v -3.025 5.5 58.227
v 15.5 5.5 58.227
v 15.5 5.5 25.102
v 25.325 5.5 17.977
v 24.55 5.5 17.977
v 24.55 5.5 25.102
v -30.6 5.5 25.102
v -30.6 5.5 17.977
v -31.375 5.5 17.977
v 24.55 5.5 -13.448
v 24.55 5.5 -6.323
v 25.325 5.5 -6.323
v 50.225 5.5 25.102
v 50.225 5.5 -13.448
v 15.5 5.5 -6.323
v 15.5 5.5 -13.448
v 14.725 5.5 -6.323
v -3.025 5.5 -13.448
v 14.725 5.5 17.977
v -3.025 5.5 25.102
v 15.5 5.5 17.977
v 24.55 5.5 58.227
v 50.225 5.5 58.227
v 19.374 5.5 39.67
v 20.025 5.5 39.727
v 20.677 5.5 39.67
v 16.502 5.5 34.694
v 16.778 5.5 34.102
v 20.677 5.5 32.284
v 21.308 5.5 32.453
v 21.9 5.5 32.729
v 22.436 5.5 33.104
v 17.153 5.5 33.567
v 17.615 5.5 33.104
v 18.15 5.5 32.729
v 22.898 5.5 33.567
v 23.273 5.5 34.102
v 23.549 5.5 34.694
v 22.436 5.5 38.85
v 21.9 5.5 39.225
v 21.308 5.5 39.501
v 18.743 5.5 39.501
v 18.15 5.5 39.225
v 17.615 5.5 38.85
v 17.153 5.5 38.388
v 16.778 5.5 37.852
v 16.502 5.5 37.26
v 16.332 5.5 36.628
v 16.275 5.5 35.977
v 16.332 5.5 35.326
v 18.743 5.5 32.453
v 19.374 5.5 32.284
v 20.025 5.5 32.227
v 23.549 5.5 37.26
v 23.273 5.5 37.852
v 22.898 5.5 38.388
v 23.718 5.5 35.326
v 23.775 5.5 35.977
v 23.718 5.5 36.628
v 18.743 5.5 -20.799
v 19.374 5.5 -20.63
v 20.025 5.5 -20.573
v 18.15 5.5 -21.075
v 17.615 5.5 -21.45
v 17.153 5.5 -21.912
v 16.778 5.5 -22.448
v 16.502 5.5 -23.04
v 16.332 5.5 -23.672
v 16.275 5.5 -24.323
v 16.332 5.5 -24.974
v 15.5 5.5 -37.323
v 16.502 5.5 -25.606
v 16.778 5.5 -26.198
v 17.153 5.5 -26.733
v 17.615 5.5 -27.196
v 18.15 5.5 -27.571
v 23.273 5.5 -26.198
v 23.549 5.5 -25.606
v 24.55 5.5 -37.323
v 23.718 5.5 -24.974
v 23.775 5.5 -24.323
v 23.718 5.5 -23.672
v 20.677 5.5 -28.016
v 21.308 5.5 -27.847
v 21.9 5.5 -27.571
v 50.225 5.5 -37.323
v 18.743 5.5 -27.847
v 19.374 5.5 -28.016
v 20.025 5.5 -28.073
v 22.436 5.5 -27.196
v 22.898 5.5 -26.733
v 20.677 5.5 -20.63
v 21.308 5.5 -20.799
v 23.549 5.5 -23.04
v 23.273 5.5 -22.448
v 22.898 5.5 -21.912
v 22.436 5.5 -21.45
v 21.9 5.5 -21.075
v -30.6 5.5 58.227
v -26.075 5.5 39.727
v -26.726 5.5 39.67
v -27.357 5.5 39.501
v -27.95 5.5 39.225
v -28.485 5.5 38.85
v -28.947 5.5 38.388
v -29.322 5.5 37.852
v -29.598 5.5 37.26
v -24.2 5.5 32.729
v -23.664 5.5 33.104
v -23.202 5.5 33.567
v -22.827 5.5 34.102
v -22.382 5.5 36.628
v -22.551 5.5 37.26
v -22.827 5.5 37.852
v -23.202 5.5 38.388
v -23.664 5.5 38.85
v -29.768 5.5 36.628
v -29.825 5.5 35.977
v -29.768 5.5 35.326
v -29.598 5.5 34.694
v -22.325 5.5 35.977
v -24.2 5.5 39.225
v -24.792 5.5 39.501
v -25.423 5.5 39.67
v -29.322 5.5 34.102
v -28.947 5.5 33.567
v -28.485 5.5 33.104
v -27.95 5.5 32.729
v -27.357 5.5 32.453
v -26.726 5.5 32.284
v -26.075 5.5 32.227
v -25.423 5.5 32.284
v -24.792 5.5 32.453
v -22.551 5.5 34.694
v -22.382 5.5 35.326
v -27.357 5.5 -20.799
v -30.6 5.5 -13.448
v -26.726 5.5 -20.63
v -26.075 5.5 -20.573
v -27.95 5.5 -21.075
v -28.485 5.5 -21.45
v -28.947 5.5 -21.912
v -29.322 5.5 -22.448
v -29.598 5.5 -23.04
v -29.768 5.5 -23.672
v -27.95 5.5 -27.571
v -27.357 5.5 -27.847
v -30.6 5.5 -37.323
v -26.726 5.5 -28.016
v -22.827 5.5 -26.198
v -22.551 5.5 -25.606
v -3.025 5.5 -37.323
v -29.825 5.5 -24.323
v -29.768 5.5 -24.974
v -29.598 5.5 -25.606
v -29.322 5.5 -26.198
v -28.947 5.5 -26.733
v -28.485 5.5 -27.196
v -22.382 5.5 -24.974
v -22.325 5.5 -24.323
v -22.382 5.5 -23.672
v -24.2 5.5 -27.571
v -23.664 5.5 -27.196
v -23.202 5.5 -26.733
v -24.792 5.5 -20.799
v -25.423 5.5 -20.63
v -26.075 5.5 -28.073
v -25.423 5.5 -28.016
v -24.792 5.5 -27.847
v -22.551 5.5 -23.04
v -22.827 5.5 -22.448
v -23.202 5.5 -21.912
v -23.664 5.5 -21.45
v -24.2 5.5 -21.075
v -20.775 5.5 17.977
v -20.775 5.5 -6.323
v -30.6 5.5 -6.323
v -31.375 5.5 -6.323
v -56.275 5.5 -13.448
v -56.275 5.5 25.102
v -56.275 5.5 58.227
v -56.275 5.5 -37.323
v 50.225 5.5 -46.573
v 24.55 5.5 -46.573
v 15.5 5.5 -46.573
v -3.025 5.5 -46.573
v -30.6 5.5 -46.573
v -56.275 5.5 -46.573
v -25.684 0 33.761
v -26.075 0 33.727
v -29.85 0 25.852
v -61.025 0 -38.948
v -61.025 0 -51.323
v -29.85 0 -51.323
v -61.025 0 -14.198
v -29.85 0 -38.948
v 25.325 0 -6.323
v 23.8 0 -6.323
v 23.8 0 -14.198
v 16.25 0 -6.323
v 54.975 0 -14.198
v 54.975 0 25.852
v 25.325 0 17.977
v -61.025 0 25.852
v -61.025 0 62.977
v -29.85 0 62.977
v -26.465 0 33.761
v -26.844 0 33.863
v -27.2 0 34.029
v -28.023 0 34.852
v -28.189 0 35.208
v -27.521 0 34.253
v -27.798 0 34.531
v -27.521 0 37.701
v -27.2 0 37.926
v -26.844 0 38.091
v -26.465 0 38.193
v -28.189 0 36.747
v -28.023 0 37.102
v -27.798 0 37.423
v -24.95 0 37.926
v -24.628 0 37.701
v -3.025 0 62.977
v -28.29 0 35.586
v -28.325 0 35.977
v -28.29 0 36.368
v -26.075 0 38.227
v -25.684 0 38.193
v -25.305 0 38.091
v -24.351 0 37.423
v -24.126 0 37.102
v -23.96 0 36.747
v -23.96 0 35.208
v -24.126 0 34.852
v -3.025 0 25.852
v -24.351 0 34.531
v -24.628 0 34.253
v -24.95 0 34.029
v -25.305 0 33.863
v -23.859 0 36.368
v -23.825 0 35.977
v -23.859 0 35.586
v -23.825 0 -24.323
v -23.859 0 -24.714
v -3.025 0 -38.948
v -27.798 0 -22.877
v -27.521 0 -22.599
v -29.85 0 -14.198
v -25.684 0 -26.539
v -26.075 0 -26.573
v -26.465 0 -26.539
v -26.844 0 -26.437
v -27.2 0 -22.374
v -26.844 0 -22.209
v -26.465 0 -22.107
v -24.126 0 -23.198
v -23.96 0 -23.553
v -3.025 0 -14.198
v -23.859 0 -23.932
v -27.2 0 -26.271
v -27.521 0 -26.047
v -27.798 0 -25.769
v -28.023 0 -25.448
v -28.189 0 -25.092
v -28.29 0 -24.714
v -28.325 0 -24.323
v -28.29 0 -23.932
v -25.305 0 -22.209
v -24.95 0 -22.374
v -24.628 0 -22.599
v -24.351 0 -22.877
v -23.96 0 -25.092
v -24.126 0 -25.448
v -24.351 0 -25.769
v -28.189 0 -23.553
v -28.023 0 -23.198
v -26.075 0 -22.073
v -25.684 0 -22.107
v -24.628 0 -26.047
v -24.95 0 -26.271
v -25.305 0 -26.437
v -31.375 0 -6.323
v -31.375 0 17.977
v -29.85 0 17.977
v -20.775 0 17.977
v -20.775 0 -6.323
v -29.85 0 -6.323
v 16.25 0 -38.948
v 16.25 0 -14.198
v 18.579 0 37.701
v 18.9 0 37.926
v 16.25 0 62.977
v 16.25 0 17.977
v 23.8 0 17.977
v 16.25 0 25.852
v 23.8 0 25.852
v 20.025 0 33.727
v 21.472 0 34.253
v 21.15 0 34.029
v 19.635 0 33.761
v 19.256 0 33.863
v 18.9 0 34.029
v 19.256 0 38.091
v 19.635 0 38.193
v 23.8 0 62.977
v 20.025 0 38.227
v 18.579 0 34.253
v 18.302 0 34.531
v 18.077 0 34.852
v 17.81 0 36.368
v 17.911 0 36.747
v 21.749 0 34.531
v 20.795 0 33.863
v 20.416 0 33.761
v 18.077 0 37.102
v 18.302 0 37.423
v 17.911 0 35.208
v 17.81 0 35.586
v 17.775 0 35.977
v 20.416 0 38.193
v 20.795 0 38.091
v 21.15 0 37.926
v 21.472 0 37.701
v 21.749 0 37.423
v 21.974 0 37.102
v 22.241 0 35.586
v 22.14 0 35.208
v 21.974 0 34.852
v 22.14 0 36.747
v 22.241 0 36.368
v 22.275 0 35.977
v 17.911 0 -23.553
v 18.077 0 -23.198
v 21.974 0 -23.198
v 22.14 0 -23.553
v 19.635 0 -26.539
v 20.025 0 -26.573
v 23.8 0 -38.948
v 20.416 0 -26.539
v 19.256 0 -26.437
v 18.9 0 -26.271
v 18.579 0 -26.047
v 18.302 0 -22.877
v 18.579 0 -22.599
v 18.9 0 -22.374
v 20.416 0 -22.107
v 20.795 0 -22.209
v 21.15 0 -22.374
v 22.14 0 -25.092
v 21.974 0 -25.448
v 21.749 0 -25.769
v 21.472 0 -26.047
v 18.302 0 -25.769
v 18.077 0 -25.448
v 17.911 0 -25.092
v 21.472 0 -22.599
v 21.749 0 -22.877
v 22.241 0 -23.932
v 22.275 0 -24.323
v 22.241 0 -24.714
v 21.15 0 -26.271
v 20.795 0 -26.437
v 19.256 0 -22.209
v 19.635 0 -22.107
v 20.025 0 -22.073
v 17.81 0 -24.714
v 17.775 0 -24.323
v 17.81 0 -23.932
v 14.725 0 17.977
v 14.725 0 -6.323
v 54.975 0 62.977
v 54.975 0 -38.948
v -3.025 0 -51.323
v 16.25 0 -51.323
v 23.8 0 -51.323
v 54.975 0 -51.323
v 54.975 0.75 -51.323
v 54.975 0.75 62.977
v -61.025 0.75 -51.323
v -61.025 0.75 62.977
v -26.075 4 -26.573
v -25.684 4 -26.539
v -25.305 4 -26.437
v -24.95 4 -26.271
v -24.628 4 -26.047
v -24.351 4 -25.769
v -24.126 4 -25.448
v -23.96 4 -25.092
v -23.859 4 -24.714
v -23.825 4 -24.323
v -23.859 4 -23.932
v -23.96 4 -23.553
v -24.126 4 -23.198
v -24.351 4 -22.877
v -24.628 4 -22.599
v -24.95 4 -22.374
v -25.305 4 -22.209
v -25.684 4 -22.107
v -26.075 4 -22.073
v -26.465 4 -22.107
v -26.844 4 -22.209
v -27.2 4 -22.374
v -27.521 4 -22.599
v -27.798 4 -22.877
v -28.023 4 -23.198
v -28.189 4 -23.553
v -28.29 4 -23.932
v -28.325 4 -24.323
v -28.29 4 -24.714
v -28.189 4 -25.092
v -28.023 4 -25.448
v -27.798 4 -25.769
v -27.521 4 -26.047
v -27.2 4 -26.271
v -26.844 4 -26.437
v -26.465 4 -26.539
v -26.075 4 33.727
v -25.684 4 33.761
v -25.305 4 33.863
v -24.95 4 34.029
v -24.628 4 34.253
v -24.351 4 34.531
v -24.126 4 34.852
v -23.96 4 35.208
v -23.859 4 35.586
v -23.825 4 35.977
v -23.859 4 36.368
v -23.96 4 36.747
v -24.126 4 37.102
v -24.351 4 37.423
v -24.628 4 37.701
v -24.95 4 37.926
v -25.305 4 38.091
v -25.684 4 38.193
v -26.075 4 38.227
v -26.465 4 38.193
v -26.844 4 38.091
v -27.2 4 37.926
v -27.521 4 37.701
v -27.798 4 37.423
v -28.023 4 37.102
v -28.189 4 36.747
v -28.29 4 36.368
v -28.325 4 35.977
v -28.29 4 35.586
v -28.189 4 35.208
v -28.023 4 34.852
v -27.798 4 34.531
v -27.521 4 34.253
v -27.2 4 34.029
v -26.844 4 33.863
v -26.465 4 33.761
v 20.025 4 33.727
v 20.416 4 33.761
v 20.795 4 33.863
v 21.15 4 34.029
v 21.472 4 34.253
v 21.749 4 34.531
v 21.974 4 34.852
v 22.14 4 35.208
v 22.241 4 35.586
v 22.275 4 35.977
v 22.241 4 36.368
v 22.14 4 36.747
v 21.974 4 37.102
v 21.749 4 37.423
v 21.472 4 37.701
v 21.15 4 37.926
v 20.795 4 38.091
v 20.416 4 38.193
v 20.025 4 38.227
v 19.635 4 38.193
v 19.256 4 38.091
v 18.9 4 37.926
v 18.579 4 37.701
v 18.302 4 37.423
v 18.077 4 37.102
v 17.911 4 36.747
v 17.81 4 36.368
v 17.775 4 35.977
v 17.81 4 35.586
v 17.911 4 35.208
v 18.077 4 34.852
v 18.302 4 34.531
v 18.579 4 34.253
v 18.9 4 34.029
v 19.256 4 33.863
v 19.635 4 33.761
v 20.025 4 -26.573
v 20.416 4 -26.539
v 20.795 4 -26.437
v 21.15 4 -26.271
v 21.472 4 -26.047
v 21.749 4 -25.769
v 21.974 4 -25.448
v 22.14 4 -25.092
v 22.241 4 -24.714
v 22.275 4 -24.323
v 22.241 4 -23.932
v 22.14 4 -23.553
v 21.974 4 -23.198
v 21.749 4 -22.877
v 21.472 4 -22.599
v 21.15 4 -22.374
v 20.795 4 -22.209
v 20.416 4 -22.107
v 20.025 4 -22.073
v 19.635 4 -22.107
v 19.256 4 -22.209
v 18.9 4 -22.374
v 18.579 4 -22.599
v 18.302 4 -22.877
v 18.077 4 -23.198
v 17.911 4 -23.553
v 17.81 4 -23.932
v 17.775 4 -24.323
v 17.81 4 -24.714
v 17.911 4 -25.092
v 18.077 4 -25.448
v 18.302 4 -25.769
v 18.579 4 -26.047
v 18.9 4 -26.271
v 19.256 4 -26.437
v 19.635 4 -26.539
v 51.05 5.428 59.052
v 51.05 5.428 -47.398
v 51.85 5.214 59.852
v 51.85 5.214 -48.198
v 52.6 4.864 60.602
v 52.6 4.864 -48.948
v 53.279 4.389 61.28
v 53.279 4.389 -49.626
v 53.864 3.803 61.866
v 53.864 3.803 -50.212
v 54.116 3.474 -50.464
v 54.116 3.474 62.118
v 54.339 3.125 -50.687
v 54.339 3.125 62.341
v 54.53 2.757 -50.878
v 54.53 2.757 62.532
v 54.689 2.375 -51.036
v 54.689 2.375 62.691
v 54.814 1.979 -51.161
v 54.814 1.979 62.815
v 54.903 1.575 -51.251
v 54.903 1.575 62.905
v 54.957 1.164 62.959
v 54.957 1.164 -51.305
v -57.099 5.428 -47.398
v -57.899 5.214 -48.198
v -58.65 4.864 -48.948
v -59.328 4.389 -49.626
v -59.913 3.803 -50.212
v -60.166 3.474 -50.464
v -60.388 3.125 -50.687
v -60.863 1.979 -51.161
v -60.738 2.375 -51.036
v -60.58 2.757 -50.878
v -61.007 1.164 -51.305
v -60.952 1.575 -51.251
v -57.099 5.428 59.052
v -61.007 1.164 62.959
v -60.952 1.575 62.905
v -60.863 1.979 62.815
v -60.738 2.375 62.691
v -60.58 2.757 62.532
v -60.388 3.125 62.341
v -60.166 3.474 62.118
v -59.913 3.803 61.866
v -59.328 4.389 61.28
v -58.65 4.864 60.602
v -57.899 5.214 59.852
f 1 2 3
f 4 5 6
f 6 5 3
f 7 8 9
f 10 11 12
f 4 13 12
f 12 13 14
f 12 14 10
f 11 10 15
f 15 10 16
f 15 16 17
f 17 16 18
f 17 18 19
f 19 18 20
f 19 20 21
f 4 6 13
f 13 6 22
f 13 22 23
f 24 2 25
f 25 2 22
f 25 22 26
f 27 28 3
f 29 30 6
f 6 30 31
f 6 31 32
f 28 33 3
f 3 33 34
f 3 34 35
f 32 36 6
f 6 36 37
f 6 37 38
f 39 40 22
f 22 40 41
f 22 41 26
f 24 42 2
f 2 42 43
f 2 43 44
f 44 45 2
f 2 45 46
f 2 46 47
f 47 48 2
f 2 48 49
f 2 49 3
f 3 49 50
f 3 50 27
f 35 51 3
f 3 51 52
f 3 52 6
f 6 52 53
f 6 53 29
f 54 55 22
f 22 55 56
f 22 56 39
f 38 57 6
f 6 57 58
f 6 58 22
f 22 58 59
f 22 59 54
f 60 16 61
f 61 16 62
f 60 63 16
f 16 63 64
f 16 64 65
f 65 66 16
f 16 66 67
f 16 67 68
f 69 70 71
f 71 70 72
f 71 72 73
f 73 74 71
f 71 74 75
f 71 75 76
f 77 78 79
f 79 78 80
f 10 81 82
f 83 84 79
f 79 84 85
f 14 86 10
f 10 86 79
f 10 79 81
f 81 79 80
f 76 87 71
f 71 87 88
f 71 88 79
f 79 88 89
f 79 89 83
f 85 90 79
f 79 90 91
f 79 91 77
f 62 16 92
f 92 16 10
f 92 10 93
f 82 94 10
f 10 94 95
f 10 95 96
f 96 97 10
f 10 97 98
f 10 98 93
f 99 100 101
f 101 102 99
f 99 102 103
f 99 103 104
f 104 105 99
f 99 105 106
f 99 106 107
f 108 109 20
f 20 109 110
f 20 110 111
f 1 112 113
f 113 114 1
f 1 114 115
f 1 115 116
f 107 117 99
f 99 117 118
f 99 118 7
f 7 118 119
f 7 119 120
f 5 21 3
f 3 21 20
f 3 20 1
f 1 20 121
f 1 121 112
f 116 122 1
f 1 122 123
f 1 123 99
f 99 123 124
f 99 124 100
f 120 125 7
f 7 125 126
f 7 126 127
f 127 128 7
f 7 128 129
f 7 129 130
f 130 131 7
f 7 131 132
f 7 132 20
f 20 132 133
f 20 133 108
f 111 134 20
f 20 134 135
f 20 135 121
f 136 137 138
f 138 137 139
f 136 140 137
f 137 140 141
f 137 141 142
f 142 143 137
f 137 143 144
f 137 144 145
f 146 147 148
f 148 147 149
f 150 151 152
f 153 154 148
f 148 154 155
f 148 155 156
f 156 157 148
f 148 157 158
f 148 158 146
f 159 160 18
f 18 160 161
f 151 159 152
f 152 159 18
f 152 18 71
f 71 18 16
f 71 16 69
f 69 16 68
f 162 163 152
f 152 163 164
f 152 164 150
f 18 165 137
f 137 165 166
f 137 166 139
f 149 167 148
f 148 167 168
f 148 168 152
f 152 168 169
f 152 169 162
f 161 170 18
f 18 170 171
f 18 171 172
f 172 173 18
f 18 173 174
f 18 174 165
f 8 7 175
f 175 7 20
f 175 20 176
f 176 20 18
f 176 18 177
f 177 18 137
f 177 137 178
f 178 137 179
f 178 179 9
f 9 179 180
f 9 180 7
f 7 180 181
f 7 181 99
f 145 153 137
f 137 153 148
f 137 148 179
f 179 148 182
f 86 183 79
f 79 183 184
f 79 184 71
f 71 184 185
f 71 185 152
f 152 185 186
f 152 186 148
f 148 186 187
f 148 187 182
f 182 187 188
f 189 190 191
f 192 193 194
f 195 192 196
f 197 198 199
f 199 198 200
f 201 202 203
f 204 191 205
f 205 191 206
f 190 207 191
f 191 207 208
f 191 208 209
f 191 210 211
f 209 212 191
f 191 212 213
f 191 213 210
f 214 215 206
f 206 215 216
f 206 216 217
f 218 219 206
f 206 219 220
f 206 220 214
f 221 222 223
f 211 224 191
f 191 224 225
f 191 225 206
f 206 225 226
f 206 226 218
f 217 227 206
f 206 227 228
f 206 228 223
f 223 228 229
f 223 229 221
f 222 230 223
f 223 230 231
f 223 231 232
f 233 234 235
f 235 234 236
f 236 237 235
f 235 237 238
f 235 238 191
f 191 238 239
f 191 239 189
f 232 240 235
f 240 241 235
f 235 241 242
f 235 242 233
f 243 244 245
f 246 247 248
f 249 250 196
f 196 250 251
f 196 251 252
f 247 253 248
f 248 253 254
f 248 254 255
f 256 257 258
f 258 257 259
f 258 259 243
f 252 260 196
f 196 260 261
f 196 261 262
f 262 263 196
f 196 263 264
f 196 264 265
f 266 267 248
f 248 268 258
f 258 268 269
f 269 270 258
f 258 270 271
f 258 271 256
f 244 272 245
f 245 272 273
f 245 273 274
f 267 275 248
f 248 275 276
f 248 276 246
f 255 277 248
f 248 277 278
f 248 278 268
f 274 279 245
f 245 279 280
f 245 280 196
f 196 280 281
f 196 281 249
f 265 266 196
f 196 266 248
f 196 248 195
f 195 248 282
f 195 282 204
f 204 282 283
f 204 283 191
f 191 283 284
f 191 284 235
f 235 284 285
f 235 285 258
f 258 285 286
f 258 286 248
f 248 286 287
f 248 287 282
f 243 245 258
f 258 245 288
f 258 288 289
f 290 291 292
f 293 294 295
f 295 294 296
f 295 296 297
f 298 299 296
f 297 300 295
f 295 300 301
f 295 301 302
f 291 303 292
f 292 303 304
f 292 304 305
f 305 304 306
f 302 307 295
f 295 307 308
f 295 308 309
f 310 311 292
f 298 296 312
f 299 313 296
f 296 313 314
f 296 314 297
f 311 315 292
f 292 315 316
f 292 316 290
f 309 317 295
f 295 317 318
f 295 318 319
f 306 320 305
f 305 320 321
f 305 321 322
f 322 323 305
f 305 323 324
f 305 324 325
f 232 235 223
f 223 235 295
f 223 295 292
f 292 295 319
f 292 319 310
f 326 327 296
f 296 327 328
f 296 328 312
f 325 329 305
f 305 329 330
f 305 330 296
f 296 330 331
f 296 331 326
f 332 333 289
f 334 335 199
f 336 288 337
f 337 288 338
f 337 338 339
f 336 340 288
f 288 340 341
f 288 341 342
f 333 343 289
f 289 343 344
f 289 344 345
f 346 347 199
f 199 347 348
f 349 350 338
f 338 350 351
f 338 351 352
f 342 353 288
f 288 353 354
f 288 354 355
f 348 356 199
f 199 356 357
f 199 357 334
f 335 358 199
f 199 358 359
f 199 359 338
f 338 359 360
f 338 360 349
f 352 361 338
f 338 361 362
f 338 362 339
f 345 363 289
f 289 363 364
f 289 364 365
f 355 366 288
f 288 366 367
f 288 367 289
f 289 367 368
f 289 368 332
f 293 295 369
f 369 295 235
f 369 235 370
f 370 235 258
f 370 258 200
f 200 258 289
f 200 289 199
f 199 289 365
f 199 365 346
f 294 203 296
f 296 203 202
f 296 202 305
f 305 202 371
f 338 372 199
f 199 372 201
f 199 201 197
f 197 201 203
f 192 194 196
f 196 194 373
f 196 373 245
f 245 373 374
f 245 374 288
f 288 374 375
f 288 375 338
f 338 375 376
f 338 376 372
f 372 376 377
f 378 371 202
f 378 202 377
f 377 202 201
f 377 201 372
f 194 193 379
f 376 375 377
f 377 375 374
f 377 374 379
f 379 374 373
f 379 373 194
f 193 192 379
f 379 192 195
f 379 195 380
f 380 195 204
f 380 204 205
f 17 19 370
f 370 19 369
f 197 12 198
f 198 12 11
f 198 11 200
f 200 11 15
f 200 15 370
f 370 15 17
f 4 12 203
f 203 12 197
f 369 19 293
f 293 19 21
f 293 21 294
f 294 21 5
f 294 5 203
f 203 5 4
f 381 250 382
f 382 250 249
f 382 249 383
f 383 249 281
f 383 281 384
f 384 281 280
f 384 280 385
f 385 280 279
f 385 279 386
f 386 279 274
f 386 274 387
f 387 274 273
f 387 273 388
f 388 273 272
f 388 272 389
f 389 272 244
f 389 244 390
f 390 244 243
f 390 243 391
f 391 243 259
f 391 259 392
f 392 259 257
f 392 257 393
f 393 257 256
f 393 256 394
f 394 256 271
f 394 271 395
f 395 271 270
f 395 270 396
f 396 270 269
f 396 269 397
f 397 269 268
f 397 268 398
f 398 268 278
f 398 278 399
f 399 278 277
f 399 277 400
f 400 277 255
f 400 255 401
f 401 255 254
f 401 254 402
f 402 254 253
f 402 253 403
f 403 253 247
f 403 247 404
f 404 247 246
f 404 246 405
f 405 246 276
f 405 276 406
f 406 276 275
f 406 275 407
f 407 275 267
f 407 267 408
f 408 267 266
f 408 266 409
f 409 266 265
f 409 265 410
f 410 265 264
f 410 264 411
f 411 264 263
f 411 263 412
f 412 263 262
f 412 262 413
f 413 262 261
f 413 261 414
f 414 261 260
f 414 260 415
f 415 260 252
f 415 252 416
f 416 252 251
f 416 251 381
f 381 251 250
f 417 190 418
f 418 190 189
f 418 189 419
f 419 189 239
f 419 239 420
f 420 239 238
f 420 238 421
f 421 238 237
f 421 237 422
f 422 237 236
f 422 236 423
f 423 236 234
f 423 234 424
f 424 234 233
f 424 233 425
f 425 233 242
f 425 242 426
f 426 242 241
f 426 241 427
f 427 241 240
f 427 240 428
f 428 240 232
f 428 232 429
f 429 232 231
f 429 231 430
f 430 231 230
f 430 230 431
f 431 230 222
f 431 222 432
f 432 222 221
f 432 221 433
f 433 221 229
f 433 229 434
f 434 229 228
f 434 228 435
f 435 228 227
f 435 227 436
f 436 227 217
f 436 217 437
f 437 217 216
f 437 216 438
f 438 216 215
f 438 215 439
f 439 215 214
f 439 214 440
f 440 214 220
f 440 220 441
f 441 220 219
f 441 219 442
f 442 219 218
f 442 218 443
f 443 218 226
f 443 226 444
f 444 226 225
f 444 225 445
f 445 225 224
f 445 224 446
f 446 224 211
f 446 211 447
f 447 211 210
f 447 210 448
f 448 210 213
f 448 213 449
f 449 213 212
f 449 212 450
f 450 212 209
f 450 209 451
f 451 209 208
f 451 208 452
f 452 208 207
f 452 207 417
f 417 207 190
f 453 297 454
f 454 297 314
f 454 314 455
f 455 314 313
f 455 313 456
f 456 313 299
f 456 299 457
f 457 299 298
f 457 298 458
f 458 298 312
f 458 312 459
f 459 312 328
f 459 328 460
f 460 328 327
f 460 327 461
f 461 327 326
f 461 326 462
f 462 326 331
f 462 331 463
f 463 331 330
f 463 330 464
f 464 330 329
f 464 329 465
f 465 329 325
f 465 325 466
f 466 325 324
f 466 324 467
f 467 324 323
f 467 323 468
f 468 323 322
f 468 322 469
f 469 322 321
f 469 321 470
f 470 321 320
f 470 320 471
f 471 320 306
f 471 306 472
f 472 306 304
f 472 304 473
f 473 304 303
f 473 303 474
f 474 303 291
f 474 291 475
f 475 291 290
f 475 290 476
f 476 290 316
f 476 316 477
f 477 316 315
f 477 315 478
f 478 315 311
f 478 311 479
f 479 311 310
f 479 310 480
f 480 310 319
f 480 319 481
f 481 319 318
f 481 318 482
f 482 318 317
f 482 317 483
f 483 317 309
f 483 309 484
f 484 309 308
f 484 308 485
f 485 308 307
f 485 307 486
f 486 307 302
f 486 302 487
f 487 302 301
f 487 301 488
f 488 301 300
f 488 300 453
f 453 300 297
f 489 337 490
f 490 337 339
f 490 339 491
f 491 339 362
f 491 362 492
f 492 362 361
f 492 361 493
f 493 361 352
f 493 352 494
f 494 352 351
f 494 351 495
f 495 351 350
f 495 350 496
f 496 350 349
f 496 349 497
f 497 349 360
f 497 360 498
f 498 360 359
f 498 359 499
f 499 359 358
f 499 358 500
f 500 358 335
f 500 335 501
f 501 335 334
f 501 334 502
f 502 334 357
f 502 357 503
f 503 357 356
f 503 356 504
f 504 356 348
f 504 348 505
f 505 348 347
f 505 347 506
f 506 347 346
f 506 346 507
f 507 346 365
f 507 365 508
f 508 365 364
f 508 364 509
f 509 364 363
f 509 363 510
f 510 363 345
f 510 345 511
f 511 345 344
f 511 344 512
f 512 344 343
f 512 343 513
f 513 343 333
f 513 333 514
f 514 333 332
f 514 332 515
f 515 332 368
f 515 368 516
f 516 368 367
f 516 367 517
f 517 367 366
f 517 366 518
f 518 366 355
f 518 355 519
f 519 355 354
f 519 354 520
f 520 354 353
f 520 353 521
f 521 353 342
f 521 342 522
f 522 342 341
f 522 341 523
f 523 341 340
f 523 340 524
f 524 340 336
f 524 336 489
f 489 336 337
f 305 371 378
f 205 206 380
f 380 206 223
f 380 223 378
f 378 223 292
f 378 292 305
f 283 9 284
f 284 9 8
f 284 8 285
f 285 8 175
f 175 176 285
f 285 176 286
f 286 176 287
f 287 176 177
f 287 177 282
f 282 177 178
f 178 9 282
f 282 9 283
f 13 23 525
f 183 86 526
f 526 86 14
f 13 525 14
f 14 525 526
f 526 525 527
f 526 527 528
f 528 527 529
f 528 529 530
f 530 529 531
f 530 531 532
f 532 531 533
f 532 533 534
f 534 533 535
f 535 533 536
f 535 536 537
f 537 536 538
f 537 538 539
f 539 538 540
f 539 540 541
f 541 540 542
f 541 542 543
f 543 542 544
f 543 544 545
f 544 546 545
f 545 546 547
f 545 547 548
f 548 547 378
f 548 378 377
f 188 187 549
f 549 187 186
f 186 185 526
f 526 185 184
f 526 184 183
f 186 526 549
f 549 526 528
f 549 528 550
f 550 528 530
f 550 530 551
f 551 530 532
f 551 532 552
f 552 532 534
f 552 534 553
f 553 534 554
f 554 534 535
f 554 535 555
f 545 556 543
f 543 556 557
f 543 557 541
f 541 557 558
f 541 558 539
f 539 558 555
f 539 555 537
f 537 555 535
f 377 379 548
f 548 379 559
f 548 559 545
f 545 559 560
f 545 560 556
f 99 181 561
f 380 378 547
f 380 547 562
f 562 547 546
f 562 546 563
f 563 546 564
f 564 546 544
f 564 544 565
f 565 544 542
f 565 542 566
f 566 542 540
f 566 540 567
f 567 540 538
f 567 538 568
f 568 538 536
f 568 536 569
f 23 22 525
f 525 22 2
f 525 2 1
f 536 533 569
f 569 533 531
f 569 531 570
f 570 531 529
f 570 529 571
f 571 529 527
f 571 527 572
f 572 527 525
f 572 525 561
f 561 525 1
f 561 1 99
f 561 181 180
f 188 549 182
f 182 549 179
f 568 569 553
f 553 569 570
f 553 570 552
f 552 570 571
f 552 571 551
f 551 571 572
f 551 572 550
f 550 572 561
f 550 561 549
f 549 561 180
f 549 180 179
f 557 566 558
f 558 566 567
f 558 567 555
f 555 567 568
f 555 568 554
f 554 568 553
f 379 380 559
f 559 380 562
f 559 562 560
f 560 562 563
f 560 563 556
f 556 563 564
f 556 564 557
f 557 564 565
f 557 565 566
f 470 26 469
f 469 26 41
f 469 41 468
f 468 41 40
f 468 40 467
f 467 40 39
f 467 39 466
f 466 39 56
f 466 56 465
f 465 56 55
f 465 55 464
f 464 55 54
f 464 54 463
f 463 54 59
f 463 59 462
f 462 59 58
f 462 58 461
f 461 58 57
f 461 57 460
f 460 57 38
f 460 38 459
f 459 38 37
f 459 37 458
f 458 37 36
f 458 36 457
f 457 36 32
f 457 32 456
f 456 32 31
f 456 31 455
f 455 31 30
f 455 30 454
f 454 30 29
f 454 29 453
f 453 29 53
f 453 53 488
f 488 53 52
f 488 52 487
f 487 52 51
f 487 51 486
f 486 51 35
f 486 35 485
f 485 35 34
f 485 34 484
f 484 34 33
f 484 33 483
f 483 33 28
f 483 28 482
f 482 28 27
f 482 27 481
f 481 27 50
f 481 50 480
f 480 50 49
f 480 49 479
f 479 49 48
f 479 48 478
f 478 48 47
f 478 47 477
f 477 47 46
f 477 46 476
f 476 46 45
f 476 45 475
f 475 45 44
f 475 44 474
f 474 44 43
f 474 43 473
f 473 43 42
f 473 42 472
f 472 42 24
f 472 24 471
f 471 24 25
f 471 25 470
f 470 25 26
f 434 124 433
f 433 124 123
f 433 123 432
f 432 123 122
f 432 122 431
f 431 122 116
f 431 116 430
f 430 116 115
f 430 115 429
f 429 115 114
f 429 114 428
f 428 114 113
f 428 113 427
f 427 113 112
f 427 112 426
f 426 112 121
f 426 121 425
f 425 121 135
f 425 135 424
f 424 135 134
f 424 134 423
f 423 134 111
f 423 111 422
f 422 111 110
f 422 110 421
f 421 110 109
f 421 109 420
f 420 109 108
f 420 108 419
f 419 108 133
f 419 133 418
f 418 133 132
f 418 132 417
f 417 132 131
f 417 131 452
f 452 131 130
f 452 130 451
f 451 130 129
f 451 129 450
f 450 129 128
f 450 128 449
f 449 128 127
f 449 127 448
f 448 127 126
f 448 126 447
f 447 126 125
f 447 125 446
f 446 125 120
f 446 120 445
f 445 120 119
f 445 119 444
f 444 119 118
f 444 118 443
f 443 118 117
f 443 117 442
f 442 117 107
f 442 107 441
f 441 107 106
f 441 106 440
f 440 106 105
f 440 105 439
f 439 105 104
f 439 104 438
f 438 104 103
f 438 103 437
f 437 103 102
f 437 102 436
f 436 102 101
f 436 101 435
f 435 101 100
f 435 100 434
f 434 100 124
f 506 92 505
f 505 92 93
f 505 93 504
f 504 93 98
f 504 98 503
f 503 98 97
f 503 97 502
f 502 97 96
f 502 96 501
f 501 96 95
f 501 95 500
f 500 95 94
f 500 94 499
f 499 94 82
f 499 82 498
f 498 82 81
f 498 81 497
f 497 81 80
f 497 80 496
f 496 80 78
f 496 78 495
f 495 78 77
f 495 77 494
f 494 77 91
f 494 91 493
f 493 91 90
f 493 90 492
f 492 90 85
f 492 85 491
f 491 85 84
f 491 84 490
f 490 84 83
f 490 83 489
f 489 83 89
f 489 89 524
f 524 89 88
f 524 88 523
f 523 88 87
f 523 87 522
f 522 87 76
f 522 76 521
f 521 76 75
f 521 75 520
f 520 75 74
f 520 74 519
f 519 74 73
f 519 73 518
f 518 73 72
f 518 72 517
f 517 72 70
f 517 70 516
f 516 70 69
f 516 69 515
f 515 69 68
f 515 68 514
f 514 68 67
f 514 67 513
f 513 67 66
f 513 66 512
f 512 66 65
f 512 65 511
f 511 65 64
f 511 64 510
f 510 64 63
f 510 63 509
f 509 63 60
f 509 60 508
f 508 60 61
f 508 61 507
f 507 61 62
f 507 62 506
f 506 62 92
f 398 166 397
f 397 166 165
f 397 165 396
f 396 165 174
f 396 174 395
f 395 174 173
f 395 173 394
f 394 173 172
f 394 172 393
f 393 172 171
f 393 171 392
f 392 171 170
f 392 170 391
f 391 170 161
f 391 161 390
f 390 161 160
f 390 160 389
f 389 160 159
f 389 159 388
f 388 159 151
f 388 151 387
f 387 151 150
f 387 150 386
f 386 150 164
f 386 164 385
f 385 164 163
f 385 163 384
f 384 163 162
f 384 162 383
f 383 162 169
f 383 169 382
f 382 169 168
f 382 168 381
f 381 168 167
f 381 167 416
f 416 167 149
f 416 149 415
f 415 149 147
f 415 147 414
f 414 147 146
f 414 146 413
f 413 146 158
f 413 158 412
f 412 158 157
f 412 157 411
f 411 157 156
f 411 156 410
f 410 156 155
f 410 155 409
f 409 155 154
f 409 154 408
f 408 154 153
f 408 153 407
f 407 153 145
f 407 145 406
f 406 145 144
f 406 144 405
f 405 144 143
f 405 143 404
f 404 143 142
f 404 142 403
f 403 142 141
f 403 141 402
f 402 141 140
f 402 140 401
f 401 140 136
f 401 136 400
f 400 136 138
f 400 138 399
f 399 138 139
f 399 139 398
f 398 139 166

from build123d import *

# Parameters (mm, degrees)
SKETCH1_W           = 116
SKETCH1_H           = 114.3
SKETCH1_R           = 2.25
SKETCH1_W_2         = 10.6
SKETCH1_H_2         = 24.3
BOSS_EXTRUDE1_DEPTH = 5.5
FILLET1_R           = 4.75
CHAMFER1_SIZE       = 1.5


with BuildPart() as part:
    # Sketch1 → Boss-Extrude1 (new body)
    with BuildSketch(Plane(origin=(0, 0, 0), x_dir=(1, 0, 0), z_dir=(0, 1, 0))):
        with Locations((-3.024594732, -5.827064496)):
            Rectangle(SKETCH1_W, SKETCH1_H)
        with Locations((-26.074594732, 24.322935504)):
            Circle(SKETCH1_R, mode=Mode.SUBTRACT)
        with Locations((-26.074594732, -35.977064496)):
            Circle(SKETCH1_R, mode=Mode.SUBTRACT)
        with Locations((20.025405268, -35.977064496)):
            Circle(SKETCH1_R, mode=Mode.SUBTRACT)
        with Locations((20.025405268, 24.322935504)):
            Circle(SKETCH1_R, mode=Mode.SUBTRACT)
        with Locations((-26.074594732, -5.827064496)):
            Rectangle(SKETCH1_W_2, SKETCH1_H_2, mode=Mode.SUBTRACT)
        with Locations((20.025405268, -5.827064496)):
            Rectangle(SKETCH1_W_2, SKETCH1_H_2, mode=Mode.SUBTRACT)
    extrude(amount=BOSS_EXTRUDE1_DEPTH)

    # Fillet1
    fillet1_edges = [part.edges().sort_by_distance(p)[0] for p in [
        (54.975405268, 5.5, 5.827064496),
        (-3.024594732, 5.5, -51.322935504),
        (-61.024594732, 5.5, 5.827064496),
        (-3.024594732, 5.5, 62.977064496),
    ]]
    fillet(fillet1_edges, radius=FILLET1_R)

    # Chamfer1
    chamfer1_edges = [part.edges().sort_by_distance(p)[0] for p in [
        (17.775405268, 5.5, 35.977064496),
        (-28.324594732, 5.5, 35.977064496),
        (-28.324594732, 5.5, -24.322935504),
        (17.775405268, 5.5, -24.322935504),
    ]]
    chamfer(chamfer1_edges, length=CHAMFER1_SIZE)


solid = part.part
